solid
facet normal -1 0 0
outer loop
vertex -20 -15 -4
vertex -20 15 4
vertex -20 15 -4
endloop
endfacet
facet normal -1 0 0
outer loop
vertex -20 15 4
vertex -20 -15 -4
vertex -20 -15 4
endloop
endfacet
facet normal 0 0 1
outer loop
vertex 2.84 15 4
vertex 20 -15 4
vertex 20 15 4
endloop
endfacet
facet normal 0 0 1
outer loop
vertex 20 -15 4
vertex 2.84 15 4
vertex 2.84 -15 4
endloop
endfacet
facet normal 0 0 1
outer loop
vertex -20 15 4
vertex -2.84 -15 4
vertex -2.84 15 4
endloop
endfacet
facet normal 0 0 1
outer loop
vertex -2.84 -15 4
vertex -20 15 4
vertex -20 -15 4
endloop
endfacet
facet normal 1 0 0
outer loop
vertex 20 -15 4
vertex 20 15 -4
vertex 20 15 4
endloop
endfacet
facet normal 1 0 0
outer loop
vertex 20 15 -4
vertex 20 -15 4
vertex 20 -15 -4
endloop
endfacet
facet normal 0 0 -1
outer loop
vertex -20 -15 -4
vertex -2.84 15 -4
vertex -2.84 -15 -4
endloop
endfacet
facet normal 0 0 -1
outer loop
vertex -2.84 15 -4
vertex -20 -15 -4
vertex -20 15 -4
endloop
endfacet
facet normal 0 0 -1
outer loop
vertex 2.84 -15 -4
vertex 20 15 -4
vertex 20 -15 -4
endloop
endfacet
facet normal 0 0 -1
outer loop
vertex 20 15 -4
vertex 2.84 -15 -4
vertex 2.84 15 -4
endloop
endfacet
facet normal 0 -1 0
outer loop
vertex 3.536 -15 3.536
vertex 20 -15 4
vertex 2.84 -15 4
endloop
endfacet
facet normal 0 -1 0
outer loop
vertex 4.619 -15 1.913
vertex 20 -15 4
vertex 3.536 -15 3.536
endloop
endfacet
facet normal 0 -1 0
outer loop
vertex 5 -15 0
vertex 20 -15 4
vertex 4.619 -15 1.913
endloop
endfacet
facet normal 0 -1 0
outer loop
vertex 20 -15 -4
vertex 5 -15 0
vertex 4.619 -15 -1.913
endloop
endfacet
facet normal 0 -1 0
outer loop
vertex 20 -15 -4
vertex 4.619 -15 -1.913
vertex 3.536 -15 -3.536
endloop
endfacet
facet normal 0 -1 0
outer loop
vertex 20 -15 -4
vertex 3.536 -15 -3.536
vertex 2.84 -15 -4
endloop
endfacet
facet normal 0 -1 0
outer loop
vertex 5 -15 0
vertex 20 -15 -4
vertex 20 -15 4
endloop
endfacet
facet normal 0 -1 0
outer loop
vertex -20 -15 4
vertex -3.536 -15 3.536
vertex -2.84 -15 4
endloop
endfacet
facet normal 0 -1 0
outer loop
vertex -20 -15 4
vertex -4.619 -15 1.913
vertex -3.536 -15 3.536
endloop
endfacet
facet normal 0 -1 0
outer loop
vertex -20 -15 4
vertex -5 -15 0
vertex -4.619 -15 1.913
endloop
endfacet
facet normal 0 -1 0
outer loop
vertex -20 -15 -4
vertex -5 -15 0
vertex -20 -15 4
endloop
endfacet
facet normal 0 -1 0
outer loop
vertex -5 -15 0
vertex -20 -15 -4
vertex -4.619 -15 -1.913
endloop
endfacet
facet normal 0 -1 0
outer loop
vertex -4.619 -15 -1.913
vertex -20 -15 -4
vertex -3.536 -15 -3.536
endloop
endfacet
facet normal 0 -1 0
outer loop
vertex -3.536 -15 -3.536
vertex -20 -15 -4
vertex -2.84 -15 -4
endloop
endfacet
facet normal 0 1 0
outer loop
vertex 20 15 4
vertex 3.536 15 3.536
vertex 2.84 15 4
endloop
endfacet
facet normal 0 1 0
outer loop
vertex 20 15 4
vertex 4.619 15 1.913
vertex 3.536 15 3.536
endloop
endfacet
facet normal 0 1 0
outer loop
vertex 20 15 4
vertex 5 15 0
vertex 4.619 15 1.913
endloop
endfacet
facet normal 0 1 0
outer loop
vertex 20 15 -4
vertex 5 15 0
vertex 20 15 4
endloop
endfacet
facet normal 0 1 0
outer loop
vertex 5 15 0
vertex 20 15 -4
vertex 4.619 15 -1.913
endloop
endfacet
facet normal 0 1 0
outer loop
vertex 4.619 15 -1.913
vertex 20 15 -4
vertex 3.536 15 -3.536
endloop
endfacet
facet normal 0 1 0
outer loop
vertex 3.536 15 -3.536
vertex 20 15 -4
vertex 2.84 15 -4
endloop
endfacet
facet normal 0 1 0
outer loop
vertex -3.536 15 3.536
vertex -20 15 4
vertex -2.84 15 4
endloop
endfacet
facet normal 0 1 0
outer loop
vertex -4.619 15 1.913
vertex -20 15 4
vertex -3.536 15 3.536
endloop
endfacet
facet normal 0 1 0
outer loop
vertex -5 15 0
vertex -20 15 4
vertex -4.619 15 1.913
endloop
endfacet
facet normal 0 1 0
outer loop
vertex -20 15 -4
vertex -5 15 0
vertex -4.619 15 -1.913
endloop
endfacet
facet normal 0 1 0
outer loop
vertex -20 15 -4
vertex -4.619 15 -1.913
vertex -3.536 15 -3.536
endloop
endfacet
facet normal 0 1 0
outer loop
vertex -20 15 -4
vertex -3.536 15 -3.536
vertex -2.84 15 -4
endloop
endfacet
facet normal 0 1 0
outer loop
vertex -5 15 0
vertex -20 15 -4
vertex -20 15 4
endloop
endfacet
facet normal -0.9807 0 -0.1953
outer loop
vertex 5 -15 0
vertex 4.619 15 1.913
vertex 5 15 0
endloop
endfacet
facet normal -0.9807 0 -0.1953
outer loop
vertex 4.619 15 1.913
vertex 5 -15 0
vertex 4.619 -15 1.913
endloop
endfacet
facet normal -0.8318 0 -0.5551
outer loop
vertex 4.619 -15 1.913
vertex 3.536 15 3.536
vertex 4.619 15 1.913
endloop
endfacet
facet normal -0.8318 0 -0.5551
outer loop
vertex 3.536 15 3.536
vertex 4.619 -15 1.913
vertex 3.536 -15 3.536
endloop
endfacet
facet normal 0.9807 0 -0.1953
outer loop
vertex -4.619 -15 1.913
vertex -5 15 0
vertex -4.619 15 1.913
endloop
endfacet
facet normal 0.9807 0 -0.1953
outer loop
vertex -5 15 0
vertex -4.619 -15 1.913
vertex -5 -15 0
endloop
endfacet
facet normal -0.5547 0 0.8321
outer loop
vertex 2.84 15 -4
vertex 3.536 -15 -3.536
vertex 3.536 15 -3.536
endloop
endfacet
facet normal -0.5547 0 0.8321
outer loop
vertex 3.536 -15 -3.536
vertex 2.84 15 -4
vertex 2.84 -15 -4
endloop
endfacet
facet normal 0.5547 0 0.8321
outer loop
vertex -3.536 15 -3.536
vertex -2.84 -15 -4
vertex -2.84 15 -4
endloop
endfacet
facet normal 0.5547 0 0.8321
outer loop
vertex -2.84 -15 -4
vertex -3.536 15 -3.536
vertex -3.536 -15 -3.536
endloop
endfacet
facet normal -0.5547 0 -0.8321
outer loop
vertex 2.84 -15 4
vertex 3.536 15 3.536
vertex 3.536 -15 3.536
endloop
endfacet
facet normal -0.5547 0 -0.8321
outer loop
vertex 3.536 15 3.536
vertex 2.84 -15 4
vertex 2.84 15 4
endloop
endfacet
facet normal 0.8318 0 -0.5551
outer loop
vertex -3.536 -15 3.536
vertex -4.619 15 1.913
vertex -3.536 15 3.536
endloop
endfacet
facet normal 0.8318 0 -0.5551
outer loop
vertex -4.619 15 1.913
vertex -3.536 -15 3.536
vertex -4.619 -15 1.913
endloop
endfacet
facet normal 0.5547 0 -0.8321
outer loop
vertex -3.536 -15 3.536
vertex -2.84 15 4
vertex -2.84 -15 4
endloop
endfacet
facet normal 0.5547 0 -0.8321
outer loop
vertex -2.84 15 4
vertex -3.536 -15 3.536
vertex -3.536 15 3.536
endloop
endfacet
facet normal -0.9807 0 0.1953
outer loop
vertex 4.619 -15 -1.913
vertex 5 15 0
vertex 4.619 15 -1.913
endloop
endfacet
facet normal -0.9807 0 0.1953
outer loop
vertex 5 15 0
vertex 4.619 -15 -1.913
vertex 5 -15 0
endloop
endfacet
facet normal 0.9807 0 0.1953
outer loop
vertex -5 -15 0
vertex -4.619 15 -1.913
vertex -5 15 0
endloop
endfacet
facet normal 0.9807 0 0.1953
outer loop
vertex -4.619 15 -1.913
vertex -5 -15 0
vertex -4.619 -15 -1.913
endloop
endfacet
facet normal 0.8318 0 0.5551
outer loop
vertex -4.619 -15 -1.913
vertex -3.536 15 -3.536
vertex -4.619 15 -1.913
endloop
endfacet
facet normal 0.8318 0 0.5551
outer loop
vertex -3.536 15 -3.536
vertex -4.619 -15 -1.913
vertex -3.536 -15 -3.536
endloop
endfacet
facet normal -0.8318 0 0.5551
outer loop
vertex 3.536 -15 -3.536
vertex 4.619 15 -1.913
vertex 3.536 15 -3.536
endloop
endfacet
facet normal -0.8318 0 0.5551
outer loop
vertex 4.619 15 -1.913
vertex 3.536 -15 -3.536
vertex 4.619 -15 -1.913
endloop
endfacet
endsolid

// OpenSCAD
// Rectangular plate with centered hole
difference() {
    cube([40, 30, 8], center = true);  // Main plate body
    rotate([90, 0, 0])                    // Align cylinder along Z axis
        cylinder(h = 50, d = 10, center = true);  // Central hole
}
